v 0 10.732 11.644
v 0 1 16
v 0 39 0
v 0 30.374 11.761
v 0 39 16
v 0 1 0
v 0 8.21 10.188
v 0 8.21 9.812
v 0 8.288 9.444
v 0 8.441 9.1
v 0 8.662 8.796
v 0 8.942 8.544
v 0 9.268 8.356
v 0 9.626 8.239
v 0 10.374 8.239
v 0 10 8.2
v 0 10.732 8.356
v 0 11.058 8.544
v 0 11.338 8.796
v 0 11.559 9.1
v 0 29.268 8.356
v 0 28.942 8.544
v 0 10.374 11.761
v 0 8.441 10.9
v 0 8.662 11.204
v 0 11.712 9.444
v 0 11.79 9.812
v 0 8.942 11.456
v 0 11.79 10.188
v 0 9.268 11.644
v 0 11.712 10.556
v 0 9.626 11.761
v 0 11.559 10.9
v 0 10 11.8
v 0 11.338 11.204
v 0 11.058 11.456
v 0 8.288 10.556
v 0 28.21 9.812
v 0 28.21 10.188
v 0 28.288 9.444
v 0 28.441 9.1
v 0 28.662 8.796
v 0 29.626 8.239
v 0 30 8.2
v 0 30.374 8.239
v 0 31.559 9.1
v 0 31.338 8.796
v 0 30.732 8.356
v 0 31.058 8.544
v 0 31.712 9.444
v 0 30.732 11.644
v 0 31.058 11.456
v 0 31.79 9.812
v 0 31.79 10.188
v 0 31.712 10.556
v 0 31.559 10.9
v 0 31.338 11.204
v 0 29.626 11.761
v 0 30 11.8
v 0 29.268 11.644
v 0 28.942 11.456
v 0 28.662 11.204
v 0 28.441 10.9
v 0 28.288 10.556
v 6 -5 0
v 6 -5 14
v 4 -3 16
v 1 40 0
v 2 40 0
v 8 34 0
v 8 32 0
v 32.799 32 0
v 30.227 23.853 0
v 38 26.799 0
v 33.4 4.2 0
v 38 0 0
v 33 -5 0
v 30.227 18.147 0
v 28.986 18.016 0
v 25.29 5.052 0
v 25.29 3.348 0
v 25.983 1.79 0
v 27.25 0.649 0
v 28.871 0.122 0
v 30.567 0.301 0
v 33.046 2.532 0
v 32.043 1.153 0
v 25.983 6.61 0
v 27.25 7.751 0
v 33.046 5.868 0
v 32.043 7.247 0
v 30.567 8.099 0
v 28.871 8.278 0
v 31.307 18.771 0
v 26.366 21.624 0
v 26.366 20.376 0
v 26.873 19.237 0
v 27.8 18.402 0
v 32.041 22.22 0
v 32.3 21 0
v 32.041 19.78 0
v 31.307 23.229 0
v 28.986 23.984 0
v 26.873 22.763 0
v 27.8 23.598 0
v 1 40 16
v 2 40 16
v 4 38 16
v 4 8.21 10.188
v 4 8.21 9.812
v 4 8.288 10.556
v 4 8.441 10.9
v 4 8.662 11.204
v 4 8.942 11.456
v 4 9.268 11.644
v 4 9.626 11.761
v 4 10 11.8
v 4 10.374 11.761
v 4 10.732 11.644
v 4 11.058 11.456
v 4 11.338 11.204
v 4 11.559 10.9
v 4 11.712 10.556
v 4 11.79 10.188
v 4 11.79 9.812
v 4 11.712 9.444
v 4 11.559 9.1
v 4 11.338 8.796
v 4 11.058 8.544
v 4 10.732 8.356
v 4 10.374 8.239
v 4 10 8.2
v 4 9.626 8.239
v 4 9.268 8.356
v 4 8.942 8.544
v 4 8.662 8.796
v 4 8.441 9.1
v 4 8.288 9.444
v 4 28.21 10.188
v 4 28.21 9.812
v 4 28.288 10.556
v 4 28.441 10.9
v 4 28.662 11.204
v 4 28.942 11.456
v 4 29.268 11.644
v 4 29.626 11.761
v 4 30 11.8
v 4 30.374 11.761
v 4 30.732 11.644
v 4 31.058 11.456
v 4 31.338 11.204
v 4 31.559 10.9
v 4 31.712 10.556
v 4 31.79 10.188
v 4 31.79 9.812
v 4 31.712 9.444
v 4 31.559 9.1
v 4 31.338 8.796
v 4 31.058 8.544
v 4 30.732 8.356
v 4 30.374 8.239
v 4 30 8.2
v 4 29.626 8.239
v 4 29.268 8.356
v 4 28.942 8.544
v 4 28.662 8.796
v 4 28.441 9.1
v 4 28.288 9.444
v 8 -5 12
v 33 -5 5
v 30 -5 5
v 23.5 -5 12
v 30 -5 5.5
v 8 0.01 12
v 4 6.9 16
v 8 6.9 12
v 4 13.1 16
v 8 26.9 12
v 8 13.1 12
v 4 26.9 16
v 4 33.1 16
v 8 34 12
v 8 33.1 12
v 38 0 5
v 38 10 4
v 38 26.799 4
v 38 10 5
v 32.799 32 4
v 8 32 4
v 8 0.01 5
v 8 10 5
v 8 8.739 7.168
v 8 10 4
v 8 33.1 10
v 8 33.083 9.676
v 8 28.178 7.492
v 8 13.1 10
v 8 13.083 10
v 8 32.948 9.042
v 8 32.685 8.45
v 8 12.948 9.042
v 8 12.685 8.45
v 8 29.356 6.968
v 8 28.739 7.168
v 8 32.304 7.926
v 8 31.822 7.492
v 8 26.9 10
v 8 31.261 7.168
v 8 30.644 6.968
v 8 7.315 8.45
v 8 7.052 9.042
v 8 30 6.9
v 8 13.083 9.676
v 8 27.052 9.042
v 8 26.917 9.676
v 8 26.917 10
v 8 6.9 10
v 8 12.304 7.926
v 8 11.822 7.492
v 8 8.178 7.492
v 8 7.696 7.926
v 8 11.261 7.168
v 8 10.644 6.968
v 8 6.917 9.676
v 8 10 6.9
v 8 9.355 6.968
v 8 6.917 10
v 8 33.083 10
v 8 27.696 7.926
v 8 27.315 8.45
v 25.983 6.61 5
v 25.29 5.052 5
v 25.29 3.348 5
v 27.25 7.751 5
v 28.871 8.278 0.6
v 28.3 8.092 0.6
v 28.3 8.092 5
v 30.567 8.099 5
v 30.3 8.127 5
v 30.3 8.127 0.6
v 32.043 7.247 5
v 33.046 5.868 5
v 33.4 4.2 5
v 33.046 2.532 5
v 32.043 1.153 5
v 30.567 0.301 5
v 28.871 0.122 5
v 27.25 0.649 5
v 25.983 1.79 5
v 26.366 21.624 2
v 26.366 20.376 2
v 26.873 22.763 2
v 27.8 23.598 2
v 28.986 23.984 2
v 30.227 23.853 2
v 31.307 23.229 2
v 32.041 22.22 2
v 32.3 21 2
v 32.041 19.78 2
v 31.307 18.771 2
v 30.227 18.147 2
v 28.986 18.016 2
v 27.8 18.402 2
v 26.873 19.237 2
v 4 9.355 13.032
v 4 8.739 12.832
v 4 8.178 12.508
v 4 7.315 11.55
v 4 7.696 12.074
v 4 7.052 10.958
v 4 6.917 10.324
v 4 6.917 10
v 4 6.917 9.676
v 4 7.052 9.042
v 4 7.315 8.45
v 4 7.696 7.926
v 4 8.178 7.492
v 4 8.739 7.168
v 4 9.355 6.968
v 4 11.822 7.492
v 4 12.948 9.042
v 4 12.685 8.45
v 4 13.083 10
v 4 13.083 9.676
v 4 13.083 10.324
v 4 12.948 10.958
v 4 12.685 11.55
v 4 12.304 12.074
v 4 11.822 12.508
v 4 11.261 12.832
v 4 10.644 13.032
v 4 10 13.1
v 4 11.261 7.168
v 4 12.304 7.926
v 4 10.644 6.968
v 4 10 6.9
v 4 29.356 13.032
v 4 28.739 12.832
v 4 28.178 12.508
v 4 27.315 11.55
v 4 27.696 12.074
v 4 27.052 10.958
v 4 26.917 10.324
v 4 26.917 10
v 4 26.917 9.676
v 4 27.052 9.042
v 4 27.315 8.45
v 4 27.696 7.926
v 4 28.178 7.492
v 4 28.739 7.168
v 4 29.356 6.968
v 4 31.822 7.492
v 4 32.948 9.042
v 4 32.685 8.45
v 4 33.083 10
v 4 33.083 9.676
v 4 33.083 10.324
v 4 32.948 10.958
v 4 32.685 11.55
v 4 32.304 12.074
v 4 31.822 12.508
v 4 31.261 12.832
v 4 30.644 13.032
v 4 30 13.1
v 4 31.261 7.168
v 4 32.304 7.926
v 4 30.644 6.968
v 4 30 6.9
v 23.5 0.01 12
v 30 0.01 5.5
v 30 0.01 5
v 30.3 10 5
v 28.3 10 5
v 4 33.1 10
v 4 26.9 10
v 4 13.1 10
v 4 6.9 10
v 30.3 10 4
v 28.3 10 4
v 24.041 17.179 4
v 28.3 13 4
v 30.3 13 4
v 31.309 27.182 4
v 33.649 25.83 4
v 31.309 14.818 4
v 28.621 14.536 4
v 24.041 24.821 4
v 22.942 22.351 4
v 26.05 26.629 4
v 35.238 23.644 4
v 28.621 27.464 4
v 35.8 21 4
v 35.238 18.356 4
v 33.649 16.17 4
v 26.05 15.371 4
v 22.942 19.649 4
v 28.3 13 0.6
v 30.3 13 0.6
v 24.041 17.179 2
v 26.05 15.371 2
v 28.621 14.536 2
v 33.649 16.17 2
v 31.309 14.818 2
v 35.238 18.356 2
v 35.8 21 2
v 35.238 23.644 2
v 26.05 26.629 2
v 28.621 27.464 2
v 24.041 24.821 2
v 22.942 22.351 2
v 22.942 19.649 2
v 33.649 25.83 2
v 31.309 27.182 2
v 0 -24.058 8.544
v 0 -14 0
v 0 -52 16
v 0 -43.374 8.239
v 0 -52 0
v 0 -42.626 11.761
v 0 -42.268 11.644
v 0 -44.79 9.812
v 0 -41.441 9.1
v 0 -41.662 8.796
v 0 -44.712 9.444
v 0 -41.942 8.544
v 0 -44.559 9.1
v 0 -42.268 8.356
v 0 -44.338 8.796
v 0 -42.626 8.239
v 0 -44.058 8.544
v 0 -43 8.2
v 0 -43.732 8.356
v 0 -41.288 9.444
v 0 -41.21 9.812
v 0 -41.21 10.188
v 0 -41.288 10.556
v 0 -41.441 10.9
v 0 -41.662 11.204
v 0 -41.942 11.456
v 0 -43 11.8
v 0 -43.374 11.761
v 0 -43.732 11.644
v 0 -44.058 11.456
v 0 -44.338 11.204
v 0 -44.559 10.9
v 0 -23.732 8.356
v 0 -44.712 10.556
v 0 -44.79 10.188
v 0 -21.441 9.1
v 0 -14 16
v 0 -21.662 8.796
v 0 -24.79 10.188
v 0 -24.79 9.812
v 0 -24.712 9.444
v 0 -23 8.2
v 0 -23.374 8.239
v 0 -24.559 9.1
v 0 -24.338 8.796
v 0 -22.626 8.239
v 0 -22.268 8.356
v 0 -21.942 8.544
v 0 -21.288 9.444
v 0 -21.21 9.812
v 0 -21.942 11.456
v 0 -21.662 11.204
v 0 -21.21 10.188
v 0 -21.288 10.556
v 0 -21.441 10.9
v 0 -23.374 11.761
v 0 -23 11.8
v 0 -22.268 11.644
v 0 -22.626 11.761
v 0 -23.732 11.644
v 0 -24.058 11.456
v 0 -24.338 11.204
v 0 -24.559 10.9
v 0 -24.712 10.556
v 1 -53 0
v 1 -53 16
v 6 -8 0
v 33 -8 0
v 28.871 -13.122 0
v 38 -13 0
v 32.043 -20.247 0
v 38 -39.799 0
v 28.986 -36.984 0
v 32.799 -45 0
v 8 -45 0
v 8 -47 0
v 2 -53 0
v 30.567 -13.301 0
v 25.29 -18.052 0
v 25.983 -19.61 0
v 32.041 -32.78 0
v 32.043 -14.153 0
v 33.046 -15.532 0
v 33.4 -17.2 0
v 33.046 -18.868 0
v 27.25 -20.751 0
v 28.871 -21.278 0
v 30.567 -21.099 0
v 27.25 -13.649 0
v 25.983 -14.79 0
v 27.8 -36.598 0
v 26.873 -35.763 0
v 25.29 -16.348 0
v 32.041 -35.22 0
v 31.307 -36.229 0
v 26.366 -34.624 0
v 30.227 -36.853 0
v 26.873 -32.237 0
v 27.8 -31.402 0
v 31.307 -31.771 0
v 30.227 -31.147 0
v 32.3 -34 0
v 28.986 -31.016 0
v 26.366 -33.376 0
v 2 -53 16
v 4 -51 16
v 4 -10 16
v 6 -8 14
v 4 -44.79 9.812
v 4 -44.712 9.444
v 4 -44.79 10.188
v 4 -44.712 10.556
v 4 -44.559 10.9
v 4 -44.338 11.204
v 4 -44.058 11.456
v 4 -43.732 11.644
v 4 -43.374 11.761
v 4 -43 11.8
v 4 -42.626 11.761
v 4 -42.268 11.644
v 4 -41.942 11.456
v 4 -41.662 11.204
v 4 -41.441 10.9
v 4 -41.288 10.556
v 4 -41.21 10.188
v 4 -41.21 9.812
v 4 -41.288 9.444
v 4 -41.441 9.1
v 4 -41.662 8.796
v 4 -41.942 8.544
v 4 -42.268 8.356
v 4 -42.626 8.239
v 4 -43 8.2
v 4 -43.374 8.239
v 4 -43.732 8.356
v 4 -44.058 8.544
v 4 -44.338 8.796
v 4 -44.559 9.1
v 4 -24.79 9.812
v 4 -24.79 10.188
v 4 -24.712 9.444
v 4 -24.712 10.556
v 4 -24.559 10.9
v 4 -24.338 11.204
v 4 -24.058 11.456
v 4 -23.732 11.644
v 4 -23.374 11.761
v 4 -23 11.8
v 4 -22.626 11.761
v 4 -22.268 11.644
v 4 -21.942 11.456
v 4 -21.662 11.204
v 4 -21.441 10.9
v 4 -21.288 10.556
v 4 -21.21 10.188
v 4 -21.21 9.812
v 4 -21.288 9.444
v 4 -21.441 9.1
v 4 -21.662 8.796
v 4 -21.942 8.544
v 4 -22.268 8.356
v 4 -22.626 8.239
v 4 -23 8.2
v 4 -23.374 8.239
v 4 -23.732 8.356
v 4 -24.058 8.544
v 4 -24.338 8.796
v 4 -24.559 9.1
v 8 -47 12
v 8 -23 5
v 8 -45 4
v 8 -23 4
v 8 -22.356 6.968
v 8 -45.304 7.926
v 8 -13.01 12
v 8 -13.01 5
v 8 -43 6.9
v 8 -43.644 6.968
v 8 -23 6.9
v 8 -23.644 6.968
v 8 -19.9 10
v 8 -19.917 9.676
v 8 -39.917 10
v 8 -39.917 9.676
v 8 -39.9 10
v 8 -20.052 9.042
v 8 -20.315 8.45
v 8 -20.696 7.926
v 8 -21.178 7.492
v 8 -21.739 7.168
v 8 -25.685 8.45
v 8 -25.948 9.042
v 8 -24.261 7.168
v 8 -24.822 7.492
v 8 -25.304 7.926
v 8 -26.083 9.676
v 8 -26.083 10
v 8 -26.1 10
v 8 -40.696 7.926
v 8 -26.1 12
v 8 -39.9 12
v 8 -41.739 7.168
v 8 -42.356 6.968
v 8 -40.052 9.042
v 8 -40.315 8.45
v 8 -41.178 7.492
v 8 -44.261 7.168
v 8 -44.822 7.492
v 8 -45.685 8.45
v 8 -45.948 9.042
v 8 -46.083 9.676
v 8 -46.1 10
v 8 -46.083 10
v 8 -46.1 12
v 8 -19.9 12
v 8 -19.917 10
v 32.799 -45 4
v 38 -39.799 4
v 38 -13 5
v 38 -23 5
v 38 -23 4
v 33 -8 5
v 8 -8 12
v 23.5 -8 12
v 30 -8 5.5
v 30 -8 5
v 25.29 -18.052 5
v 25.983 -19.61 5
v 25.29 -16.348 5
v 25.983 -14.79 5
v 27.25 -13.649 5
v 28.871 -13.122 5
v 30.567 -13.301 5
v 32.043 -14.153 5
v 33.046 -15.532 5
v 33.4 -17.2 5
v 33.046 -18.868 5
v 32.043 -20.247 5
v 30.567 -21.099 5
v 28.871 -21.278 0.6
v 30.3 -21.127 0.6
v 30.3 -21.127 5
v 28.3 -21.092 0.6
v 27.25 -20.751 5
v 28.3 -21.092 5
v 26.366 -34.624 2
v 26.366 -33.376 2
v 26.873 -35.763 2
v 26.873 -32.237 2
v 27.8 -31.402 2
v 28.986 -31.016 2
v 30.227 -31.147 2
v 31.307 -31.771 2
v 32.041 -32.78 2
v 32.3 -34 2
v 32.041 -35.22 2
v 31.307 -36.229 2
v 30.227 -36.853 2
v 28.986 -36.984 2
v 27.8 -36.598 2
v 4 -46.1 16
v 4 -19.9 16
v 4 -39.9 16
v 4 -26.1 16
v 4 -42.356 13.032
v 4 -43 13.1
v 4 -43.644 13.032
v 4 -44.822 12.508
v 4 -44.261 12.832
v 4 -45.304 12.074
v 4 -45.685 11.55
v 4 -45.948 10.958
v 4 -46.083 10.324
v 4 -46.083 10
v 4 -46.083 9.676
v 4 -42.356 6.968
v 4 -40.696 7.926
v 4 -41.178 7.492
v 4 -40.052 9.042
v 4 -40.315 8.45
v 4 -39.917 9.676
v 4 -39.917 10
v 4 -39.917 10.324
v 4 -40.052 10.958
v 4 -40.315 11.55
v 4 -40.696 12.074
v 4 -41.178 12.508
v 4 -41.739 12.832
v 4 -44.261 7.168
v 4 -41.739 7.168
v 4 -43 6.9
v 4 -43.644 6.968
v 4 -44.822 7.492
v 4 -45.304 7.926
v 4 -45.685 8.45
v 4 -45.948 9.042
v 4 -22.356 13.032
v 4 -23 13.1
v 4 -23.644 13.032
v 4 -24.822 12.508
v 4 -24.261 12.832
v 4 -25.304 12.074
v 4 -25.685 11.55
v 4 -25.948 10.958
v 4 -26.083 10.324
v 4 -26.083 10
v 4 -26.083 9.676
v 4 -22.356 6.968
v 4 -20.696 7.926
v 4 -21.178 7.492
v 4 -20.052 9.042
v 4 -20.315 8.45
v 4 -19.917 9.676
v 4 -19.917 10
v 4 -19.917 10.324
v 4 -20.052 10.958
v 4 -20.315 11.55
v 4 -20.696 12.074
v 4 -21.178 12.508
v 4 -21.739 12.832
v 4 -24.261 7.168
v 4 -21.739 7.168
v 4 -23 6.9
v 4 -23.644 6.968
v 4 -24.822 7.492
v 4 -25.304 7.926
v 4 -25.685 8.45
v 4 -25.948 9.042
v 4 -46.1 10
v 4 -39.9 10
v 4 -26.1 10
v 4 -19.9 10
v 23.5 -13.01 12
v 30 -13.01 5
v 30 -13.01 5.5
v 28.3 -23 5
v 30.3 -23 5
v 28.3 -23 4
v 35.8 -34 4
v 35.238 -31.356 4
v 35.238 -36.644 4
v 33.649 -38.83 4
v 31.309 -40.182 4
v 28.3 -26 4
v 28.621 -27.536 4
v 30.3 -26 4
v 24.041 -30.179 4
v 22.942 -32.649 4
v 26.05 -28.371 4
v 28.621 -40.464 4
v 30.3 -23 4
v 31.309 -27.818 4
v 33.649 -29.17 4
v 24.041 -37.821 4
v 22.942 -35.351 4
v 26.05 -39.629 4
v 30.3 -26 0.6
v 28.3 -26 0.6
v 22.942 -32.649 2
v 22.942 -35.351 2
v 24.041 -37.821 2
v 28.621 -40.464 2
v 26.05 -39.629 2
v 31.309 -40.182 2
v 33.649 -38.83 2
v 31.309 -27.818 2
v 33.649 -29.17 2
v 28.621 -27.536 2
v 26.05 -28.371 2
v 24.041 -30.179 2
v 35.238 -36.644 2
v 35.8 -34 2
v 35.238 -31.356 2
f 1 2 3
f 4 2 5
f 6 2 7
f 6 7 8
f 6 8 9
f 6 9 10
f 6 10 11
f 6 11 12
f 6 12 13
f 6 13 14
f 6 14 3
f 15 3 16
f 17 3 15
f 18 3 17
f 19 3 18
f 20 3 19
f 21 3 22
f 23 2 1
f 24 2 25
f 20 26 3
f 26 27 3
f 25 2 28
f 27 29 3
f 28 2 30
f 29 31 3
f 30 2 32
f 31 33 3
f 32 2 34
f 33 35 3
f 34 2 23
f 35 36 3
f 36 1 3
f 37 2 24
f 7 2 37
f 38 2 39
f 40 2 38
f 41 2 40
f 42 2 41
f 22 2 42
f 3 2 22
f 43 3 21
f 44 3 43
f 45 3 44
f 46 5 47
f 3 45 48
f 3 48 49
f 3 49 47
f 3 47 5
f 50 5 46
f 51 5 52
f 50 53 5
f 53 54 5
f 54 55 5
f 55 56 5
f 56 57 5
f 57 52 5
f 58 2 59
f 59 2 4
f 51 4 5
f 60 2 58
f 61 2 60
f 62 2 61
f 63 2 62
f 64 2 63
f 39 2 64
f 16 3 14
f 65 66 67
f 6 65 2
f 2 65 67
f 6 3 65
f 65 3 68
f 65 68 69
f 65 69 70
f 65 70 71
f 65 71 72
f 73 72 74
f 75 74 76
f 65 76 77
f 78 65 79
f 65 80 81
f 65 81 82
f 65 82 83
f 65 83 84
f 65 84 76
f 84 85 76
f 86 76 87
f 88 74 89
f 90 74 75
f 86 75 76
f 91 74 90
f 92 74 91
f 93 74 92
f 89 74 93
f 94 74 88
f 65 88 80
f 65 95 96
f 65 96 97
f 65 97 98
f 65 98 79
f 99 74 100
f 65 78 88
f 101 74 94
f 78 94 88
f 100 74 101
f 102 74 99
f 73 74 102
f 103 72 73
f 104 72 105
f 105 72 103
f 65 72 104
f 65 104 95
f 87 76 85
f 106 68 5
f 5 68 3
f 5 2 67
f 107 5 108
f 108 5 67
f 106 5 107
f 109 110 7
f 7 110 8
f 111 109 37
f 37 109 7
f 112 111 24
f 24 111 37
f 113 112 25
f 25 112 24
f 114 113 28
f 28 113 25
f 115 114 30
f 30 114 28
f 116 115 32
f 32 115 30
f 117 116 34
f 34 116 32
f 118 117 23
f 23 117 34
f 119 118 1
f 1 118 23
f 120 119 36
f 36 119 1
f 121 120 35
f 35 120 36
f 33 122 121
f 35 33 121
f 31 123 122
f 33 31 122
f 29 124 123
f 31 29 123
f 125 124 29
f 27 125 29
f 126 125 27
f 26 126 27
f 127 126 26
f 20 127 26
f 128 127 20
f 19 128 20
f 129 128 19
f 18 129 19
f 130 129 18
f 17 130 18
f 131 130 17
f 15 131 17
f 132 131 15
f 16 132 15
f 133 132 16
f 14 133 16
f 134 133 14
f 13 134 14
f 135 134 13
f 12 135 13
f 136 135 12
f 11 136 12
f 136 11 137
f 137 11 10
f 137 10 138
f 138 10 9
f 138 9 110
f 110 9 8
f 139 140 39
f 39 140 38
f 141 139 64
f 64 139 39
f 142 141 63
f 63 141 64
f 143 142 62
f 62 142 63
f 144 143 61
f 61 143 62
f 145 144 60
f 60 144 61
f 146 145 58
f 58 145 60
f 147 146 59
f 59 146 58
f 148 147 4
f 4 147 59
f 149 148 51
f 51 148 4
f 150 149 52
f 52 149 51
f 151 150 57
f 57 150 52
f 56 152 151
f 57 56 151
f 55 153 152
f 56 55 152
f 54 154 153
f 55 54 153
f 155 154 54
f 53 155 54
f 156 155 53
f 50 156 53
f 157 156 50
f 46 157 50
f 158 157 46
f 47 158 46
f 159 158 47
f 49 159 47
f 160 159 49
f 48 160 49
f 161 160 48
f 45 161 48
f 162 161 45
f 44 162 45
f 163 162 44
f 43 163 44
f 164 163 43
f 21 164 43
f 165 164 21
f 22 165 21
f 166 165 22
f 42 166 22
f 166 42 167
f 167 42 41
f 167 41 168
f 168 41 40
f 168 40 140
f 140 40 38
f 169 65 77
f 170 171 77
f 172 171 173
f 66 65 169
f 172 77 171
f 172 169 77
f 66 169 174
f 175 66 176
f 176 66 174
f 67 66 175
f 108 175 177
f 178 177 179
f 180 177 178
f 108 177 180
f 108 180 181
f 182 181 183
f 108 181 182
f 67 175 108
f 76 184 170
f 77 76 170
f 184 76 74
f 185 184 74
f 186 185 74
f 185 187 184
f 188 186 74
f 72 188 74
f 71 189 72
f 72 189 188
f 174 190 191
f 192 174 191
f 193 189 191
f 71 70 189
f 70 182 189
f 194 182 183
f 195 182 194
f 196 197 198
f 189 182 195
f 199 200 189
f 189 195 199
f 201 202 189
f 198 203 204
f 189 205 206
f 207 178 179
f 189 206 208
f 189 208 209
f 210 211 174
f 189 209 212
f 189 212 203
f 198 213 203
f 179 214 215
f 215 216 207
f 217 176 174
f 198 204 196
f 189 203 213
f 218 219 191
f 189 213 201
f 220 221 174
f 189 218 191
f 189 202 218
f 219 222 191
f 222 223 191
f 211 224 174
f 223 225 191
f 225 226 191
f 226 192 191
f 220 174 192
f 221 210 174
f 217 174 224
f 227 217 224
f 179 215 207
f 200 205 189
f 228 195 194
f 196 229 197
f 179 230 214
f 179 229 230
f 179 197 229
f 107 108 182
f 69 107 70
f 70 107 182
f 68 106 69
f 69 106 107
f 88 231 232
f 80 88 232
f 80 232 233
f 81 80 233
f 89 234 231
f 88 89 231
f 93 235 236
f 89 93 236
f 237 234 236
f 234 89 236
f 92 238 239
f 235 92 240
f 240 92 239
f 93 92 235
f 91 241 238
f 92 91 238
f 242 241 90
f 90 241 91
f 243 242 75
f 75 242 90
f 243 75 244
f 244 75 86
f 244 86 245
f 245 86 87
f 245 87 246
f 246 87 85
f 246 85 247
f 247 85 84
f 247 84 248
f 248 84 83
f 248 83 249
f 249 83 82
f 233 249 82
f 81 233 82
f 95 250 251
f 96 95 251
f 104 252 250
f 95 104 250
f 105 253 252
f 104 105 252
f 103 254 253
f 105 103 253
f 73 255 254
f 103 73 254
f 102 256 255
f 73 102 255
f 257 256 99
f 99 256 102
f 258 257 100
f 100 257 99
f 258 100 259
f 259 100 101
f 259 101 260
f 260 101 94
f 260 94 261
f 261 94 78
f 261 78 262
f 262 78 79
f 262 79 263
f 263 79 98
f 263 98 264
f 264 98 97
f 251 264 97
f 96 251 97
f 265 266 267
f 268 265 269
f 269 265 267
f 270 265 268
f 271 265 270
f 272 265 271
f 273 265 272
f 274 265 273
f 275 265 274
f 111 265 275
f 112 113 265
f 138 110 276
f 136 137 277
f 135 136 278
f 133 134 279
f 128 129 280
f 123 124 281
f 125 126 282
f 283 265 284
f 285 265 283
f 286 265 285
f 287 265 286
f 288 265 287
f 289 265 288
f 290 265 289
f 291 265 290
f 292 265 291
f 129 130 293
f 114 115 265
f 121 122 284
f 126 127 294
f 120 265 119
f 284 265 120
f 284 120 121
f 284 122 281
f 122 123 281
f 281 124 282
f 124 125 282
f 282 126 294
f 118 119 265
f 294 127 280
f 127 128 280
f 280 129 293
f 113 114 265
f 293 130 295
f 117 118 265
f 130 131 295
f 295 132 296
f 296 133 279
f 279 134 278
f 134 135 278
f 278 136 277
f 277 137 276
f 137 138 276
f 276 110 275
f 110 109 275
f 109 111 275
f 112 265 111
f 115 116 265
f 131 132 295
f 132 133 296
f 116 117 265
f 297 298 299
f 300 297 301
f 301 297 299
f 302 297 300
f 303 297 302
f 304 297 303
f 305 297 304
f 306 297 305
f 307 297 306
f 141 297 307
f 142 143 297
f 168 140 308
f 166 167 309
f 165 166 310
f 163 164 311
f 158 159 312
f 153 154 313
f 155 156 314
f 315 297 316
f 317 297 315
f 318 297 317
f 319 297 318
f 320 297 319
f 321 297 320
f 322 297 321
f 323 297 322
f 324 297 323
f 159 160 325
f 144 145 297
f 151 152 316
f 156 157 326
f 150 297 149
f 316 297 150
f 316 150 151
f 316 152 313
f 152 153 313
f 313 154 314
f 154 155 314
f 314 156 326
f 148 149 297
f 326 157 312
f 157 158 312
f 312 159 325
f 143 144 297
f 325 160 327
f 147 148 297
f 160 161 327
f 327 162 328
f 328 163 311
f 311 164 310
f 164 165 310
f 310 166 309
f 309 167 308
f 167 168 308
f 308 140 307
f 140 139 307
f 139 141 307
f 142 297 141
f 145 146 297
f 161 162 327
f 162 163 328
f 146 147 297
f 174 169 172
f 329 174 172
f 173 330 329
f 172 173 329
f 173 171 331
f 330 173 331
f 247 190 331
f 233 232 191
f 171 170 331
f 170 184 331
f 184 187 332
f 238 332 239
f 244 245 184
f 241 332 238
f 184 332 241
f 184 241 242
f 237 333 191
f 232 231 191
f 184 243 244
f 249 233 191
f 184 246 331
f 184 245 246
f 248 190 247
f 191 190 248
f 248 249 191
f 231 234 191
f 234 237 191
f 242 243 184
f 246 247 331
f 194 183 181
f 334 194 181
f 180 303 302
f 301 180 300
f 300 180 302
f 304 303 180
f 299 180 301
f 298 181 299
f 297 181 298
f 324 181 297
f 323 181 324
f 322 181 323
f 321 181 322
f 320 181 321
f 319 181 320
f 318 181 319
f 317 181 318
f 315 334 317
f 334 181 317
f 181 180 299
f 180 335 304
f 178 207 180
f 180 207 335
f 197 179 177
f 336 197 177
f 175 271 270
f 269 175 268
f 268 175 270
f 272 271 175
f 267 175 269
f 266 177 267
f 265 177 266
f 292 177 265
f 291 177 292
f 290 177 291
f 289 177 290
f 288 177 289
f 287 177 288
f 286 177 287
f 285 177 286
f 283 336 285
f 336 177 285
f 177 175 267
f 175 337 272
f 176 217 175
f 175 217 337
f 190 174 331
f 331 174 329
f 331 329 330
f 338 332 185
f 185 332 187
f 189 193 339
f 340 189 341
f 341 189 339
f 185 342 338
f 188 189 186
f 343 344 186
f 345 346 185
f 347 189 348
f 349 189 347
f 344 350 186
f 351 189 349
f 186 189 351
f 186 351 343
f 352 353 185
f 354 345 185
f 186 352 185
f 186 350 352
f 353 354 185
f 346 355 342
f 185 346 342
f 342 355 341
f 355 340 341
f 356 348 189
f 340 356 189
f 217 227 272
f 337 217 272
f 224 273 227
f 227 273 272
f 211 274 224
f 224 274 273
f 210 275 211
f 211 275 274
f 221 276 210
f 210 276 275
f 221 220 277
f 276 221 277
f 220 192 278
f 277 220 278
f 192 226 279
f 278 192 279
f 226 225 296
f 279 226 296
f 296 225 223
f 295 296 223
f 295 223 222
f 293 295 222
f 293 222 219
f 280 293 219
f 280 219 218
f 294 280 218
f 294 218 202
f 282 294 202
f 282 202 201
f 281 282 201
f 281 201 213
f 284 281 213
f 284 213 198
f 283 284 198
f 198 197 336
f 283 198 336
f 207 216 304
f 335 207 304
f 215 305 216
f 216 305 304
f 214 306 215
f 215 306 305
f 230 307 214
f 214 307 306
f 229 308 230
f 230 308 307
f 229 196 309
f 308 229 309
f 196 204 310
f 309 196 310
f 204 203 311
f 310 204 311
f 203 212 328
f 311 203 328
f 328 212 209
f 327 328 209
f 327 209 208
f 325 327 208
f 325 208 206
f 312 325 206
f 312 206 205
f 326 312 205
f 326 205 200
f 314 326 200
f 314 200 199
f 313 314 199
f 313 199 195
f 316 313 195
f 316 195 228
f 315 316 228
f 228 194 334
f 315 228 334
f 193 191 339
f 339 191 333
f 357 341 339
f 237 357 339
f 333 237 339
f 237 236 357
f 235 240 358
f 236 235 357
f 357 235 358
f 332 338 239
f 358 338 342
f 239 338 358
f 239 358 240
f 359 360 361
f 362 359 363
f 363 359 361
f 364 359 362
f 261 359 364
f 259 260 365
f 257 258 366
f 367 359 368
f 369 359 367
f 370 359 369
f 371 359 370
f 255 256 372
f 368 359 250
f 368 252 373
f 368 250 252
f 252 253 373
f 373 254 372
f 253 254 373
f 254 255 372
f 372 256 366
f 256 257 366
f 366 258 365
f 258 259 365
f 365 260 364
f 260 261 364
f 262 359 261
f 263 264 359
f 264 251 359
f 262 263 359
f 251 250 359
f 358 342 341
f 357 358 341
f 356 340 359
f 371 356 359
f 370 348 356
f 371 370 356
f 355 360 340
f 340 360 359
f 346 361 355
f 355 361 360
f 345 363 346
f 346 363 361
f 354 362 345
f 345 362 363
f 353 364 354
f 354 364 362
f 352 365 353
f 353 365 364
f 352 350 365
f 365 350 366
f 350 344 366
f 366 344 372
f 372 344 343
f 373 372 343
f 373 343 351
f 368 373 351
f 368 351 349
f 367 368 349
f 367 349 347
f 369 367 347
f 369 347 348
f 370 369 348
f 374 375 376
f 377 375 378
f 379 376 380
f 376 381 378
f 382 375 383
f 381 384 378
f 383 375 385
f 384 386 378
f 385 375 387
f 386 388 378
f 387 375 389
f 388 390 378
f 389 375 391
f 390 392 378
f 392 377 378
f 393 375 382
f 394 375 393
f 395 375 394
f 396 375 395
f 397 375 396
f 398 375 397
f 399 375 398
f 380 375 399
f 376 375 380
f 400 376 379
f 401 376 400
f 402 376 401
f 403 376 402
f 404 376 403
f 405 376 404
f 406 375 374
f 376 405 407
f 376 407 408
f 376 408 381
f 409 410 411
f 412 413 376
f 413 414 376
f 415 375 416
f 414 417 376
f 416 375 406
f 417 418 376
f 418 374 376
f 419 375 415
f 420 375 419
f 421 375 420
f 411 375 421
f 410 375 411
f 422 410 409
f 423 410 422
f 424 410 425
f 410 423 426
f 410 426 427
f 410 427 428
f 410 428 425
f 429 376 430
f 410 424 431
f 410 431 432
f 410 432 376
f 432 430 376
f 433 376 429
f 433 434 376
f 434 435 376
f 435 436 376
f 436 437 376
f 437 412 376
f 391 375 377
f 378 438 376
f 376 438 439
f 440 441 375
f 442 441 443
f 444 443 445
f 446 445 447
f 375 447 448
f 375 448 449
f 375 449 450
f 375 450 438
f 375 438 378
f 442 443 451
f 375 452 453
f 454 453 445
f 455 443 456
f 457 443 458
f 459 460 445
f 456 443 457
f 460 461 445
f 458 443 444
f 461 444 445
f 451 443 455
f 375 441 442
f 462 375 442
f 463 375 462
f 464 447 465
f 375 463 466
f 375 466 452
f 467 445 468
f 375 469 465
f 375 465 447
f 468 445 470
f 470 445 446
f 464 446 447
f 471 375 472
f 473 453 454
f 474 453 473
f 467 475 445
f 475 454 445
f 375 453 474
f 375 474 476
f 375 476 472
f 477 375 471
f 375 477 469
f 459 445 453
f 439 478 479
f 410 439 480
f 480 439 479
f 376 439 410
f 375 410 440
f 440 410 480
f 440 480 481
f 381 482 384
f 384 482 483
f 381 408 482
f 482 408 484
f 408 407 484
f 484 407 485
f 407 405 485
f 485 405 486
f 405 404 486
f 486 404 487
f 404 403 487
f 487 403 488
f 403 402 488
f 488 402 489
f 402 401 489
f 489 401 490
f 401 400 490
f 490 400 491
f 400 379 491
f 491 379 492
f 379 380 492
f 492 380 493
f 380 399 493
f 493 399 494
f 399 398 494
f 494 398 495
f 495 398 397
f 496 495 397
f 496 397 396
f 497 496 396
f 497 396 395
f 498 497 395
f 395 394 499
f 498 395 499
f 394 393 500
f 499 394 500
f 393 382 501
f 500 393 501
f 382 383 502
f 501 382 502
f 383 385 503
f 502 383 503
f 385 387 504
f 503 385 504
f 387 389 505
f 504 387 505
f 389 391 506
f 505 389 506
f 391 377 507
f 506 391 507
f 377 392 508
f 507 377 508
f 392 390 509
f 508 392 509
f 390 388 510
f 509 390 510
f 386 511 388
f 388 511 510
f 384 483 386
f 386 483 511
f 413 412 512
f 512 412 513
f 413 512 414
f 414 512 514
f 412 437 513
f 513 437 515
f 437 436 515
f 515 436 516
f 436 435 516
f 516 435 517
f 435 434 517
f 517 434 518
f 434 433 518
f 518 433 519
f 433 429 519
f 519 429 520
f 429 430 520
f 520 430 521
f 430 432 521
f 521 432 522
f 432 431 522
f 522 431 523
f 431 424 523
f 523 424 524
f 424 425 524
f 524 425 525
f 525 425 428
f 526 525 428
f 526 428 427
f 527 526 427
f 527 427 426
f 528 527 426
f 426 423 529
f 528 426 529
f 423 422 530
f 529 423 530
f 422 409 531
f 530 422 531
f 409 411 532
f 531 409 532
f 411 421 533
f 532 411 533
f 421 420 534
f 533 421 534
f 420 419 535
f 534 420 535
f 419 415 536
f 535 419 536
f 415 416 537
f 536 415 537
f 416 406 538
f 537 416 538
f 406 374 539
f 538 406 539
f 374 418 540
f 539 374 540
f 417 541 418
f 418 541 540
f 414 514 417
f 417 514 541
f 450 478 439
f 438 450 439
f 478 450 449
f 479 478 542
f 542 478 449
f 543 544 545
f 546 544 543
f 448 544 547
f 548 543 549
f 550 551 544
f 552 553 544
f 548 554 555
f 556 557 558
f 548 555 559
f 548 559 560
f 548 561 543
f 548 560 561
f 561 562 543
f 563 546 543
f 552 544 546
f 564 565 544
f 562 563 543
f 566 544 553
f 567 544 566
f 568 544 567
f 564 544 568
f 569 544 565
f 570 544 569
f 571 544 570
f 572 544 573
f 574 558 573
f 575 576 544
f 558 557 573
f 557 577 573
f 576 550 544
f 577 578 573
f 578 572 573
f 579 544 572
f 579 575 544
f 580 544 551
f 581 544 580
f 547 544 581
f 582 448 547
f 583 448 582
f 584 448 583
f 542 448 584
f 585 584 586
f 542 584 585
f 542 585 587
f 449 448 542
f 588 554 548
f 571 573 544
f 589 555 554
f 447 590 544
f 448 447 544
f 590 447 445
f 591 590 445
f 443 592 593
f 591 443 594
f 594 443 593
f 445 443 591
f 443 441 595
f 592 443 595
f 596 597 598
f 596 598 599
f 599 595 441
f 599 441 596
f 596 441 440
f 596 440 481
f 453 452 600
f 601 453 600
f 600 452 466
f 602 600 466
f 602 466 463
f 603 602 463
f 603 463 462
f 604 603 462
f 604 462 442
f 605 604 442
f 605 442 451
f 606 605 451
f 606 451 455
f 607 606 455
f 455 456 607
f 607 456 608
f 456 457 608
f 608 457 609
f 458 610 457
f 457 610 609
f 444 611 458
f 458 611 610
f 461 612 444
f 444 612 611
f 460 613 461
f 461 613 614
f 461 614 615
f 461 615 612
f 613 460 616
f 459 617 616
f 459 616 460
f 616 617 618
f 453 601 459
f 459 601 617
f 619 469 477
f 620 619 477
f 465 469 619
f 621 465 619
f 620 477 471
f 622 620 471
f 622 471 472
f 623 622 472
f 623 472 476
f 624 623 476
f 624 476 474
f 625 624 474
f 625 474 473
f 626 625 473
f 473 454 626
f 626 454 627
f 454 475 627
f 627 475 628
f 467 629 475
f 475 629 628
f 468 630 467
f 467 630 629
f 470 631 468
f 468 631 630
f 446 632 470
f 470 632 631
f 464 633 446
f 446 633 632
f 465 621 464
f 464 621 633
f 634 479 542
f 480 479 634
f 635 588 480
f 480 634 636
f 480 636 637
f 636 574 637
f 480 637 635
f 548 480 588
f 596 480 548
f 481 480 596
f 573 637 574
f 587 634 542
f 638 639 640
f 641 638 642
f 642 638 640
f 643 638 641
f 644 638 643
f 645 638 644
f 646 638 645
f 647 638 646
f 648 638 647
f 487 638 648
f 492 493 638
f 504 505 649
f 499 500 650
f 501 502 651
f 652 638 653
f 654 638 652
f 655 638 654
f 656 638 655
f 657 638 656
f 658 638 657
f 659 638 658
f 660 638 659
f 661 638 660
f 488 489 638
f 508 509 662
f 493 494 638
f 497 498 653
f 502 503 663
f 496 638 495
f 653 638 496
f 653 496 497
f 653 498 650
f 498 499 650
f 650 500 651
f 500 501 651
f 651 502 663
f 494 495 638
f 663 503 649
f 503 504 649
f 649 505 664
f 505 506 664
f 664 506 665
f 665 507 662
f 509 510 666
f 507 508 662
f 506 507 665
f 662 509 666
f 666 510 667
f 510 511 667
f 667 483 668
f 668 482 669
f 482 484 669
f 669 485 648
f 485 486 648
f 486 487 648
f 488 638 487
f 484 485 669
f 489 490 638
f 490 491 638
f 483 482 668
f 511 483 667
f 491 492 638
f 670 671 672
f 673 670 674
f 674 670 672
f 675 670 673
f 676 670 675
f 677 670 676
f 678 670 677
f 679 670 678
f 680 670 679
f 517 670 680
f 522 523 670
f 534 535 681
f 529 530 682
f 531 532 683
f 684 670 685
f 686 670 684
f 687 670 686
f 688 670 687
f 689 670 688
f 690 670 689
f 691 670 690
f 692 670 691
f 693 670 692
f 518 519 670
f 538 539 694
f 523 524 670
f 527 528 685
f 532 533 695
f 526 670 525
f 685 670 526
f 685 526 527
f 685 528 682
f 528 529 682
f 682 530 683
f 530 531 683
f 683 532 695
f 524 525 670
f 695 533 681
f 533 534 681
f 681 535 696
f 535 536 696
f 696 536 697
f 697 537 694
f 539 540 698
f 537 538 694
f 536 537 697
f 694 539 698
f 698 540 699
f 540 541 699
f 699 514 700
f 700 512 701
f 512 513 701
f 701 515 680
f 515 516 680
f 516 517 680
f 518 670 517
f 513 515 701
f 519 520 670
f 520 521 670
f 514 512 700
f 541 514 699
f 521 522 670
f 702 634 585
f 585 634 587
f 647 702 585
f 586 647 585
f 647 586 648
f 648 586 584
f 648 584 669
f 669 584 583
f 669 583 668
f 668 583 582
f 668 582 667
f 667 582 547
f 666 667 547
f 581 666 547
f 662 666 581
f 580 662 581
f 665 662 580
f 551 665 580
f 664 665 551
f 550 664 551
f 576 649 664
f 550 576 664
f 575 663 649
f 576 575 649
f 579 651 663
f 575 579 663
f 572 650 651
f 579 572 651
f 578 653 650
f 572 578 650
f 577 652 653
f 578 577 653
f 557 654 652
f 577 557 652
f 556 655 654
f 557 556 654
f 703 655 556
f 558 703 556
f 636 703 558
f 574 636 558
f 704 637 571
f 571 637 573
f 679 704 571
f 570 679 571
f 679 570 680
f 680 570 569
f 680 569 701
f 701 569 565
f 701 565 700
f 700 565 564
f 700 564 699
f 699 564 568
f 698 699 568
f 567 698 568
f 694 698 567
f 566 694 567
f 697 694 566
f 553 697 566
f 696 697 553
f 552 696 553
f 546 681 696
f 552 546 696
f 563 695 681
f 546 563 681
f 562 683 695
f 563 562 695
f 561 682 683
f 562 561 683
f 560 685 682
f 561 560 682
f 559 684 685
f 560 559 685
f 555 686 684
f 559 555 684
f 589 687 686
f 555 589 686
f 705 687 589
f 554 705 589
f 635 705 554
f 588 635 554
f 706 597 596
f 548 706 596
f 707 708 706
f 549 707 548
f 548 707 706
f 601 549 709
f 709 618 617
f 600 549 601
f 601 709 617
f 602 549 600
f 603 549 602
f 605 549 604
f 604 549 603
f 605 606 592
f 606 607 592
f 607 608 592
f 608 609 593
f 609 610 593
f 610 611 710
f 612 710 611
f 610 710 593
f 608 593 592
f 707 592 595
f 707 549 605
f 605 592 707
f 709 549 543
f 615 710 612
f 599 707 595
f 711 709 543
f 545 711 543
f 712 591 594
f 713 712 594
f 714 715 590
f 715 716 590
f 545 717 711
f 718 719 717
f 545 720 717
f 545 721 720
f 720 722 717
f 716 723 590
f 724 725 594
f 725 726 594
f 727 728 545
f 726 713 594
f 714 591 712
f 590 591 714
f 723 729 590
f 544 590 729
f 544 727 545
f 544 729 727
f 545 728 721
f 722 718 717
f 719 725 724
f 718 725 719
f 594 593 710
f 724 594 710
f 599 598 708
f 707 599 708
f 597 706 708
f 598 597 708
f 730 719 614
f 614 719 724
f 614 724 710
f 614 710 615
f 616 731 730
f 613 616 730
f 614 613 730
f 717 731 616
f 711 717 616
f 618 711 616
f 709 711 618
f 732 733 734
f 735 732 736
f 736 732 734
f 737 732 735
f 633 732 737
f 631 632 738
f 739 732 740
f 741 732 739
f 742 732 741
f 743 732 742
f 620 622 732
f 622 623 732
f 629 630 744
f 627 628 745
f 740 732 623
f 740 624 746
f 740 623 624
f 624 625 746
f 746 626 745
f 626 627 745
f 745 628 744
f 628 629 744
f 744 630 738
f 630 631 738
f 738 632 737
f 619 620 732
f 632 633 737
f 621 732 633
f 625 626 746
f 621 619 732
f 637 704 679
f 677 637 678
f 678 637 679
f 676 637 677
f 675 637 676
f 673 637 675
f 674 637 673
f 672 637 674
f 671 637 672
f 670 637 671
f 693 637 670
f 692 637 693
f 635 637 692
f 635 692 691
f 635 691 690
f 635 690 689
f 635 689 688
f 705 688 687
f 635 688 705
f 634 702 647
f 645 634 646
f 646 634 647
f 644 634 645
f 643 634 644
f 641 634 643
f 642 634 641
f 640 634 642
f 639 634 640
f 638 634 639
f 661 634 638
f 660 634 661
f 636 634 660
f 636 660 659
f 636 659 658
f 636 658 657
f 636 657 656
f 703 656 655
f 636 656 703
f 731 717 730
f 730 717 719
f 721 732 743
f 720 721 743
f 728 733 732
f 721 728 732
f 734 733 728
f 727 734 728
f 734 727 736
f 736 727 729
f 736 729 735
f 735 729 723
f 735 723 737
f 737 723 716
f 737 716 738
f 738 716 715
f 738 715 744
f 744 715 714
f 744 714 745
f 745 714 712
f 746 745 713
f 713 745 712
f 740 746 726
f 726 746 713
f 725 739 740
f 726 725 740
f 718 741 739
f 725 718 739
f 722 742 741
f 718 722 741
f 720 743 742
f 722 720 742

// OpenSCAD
// PRUSA i3 Z axis top holder, modified with thrust bearing positining cutouts 
//          for Z axis threaded rod
// PRUSA iteration3
// Z axis top holder
// GNU GPL v3
// Josef Průša <iam@josefprusa.cz> and contributors
// http://www.reprap.org/wiki/Prusa_Mendel
// http://prusamendel.org

module z_top_base(){
 translate([0,-5,0]) cube([8,45,16]); // plate touching the base
 translate([0,-5,0]) cube([30,5.01,12]); // plate touching the base
 translate([0,-5,0]) cube([38,15,5]); // plate touching the base
 translate([0,-5,0]) cube([38,37,4]); // plate touching the base

}

module z_top_fancy(){
 // Corner cutouts
 translate([0.5,0.5,0]) rotate([0,0,-45-180]) translate([-15,0,-1]) cube([30,30,51]);
 translate([0.5,40-0.5,0]) rotate([0,0,-45+90]) translate([-15,0,-1]) cube([30,30,51]);
 translate([-6,40+8,0]) rotate([0,0,-45-0]) translate([0,0,-1]) cube([20,20,51]);
 translate([8,0,12]) rotate([0,-45,0]) translate([0,-5,0]) cube([30,50,30]);
 translate([38-2.5,-5+2.5,0]) rotate([0,0,-45-90]) translate([-15,0,-1]) cube([30,30,51]);
 translate([45,0,0]) rotate([0,0,-45]) translate([-33,14,-1]) cube([10,10,51]);

 // cuts off the end of the x-y plate
 //translate([49,10,0]) translate([-15,0,-1]) cube([20,50,51]);

 //translate([0,0,5]) rotate([45+180,0,0]) rotate([0,0,-45+90]) translate([0,0,-15]) cube([30,30,30]);

// Stiffner cut out
 translate([30,0,5.5]) rotate([0,-45,0]) translate([0,-5,0]) cube([30,50,30]);

// 
}

module z_top_holes(){
 // Screw holes
 translate([-1,10,10]) rotate([0,90,0]) cylinder(h = 20, r=1.8, $fn=30);
 translate([-1,10+20,10]) rotate([0,90,0]) cylinder(h = 20, r=1.8, $fn=30);

 // Screw heads
 translate([4,10,10]) rotate([0,90,0]) cylinder(h = 20, r=3.1, $fn=30);
 translate([4,10-3.1,10]) cube([10,6.2,10]);
 translate([4,10+20,10]) rotate([0,90,0]) cylinder(h = 20, r=3.1, $fn=30);
 translate([4,10+20-3.1,10]) cube([10,6.2,10]);

 // Z rod holder
 translate([25+4.3,4.2,-1]) rotate([0,0,0]) cylinder(h = 50, r=4.1, $fn=15);
 translate([25+4.3-1,3,0.6]) cube([2,10,7]); // it's bit up because it helps with printing

 // drive shaft cutout
 translate([25+4.3,4.2+16.8,-1]) rotate([0,0,0]) cylinder(h = 50, r=3.0, $fn=15);
 translate([25+4.3,4.2+16.8,2]) rotate([0,0,0]) cylinder(h = 3, r=6.5, $fn=15);


}

// Final part
module z_top(){
 difference(){
  z_top_base();
  z_top_fancy();
  z_top_holes();
 }
 translate([0,-13,0]) mirror([0,1,0]) difference(){
  z_top_base();
  z_top_fancy();
  z_top_holes();
 }
}

z_top();
